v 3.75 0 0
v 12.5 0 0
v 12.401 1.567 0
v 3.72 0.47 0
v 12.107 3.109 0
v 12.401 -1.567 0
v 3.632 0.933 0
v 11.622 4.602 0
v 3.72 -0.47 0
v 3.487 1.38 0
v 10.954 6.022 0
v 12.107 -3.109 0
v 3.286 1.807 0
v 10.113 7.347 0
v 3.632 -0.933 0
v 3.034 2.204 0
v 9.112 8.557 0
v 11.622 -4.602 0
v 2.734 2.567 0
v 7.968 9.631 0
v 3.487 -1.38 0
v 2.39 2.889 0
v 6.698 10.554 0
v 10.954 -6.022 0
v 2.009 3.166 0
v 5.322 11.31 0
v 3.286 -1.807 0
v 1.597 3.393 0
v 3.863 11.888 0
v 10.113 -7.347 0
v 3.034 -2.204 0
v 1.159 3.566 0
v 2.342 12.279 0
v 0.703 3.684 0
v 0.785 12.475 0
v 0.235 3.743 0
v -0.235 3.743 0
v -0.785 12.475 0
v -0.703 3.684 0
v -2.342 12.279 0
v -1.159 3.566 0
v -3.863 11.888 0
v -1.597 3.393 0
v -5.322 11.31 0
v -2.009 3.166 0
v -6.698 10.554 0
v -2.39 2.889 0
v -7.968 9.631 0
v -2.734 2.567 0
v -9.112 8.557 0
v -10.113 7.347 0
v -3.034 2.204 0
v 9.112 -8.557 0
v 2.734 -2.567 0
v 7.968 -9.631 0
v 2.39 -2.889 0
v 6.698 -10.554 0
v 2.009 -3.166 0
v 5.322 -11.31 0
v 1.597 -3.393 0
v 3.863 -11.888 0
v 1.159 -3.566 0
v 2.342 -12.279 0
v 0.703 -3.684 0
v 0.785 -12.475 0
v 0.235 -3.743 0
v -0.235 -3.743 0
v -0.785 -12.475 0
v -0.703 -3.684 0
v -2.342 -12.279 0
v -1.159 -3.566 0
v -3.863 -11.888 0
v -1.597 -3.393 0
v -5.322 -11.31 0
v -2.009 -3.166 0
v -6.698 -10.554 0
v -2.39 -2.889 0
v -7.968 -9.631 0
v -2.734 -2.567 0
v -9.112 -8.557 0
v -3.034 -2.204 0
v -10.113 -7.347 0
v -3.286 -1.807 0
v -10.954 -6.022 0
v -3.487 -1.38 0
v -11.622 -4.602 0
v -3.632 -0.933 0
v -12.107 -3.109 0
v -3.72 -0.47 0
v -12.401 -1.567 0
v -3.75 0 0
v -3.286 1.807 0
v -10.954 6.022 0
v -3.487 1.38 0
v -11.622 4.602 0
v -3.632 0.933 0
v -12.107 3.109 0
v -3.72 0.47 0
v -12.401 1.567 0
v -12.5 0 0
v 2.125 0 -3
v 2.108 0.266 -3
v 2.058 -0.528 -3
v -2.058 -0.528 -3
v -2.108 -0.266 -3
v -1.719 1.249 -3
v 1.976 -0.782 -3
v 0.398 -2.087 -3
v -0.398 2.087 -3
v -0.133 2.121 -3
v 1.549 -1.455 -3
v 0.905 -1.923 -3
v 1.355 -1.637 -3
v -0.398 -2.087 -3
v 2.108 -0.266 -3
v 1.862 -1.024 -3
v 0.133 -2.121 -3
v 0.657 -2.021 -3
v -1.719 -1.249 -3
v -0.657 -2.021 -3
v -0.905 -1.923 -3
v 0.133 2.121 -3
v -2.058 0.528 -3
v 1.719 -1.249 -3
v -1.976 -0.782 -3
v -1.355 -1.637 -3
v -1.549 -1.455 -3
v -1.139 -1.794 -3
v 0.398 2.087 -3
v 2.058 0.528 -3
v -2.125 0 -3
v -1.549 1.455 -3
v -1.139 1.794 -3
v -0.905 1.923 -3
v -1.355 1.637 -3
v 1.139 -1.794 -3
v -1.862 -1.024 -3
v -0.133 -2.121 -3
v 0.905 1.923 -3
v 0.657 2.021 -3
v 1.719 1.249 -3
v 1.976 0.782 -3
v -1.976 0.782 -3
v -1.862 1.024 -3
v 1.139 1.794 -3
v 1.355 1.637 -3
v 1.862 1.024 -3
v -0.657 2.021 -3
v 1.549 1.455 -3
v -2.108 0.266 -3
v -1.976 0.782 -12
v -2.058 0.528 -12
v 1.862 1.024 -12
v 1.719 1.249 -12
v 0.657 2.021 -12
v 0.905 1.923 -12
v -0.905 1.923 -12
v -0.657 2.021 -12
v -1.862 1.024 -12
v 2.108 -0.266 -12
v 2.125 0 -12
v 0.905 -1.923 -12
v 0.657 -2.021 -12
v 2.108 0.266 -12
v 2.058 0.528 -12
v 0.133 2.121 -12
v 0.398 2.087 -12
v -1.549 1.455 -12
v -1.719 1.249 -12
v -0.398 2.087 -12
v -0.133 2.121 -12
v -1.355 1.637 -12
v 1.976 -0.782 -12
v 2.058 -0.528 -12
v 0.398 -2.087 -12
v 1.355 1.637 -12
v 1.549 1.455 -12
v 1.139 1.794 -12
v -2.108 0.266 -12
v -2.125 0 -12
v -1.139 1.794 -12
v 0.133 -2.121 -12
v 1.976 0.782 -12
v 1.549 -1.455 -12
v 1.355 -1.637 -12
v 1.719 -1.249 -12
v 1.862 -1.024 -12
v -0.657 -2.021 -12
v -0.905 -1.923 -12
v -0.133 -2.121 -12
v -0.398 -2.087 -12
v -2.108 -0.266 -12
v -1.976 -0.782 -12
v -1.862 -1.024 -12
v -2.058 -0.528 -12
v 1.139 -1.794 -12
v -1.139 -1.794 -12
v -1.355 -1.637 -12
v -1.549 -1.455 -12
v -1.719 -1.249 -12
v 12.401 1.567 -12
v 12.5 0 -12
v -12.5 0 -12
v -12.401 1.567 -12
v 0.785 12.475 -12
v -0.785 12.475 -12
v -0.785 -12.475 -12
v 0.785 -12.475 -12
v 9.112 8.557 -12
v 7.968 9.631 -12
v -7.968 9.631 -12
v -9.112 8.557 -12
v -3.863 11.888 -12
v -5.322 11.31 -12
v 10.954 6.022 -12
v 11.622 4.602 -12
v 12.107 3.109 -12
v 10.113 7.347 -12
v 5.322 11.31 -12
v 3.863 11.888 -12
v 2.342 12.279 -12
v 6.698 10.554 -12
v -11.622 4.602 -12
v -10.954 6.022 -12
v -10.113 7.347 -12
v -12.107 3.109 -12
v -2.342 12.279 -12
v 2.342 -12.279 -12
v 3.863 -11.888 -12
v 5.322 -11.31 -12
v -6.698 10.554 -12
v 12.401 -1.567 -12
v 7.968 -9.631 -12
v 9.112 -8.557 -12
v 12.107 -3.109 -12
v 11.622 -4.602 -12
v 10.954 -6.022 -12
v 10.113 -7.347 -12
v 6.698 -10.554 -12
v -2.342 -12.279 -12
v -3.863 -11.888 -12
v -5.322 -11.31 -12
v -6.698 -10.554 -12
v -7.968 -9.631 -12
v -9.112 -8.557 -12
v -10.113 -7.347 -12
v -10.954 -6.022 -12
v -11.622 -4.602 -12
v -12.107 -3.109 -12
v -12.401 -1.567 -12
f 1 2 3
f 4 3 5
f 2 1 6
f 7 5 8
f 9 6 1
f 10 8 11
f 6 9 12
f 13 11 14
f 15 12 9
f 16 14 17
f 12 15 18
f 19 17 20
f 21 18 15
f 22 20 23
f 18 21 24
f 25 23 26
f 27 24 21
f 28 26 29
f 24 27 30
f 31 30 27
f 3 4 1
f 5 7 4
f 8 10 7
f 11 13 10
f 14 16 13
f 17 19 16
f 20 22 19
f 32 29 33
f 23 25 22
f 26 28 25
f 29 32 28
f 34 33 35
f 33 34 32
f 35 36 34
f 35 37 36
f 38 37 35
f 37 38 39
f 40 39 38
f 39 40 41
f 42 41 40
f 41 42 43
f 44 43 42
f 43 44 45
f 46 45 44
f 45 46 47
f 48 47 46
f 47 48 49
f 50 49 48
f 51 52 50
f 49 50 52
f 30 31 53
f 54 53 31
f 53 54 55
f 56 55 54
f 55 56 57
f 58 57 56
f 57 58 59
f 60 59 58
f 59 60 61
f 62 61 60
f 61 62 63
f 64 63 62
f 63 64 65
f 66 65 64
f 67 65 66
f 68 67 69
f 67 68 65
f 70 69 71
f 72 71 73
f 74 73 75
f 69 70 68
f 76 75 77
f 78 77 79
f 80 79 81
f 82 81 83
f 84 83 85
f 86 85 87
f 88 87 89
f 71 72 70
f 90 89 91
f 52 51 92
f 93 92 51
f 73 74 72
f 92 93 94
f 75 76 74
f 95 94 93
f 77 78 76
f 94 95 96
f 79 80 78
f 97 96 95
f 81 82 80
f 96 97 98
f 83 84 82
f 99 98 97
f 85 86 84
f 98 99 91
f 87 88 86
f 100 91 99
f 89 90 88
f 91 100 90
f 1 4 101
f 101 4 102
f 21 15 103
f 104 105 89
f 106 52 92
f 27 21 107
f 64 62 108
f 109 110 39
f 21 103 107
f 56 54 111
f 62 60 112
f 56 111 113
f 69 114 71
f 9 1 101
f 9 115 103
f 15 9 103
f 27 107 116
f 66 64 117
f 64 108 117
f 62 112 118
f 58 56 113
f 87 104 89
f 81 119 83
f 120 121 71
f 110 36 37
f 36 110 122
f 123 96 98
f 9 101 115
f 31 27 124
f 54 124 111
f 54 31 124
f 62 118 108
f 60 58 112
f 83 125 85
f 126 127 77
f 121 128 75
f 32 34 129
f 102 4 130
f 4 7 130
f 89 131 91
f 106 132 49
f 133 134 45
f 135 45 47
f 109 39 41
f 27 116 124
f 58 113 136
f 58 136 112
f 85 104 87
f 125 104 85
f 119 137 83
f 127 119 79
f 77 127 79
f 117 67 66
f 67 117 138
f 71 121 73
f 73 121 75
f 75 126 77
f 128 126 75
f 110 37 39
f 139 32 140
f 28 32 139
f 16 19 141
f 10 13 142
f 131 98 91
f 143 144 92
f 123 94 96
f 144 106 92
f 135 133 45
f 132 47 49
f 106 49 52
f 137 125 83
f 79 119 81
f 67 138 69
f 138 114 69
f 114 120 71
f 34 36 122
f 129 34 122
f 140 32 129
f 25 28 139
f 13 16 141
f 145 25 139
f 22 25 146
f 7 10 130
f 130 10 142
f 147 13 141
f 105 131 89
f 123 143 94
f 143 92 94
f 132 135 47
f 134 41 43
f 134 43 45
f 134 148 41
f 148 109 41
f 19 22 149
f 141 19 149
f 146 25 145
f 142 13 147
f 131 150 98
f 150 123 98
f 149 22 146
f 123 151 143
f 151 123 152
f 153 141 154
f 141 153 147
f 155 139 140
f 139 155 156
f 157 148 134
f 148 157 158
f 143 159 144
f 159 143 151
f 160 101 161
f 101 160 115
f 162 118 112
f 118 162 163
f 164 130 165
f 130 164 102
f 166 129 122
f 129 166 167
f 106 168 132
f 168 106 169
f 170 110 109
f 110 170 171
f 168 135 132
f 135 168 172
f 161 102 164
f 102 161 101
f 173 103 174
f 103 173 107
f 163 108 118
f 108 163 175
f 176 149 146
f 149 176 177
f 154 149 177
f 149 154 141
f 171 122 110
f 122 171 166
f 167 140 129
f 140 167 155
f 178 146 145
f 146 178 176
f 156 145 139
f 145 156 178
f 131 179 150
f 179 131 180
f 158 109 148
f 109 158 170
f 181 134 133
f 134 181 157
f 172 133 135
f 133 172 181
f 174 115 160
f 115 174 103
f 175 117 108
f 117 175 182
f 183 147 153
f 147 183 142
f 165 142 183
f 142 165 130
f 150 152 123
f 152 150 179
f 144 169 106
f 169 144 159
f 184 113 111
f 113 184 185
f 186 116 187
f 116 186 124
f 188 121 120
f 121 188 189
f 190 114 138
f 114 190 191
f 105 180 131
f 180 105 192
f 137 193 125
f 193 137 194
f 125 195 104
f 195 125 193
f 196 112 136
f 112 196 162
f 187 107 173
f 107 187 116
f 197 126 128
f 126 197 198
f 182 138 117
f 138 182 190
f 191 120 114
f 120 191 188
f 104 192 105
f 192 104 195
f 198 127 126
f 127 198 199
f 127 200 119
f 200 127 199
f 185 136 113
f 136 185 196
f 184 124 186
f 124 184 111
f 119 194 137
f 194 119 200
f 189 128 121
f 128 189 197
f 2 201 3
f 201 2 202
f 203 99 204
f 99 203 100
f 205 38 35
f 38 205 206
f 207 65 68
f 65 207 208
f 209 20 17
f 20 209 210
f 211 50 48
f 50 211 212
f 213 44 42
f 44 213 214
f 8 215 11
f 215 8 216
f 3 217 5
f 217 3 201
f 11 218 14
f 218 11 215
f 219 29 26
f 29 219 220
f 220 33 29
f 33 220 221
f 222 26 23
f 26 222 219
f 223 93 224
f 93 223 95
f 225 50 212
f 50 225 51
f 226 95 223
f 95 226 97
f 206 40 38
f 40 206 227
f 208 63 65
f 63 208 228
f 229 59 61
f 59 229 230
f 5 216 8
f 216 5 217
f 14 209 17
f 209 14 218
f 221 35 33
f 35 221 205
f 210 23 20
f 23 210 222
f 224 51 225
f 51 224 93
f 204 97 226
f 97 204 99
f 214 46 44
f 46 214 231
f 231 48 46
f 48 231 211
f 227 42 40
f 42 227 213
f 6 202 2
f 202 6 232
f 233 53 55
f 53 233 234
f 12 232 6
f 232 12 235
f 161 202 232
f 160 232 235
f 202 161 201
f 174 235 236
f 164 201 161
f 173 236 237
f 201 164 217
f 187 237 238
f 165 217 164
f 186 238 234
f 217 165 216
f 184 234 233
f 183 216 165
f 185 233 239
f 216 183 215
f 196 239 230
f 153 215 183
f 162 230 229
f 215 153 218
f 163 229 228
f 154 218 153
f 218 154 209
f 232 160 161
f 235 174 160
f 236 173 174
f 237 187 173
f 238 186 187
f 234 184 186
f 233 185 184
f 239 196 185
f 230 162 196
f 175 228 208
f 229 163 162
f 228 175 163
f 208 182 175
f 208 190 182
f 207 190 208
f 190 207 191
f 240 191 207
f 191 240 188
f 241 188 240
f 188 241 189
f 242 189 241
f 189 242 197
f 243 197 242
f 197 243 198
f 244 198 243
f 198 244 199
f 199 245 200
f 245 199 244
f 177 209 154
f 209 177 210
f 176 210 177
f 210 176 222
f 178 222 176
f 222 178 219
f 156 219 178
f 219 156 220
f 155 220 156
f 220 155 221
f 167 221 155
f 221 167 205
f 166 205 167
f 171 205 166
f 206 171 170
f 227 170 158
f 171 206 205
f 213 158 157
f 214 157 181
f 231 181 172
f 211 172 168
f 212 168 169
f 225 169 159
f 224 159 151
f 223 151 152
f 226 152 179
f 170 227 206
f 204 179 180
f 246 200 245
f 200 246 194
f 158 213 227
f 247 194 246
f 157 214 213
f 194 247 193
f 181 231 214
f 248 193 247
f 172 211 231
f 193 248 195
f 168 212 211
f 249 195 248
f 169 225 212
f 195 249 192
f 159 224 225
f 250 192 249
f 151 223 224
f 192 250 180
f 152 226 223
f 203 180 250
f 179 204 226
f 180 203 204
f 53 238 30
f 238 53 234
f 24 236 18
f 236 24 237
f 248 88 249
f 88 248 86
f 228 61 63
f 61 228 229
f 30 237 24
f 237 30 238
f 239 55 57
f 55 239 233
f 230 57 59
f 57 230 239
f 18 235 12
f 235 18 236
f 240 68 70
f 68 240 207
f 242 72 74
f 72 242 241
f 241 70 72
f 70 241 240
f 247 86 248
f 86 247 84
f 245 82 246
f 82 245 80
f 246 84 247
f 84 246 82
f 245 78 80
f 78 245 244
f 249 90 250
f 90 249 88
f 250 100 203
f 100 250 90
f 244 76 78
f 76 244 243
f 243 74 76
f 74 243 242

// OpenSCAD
$fn = 50;


difference() {
	union() {
		translate(v = [0, 0, -12.0000000000]) {
			cylinder(h = 12, r = 12.5000000000);
		}
	}
	union() {
		translate(v = [0, 0, 0]) {
			rotate(a = [0, 0, 0]) {
				difference() {
					union() {
						translate(v = [0, 0, -15.0000000000]) {
							cylinder(h = 15, r = 2.0000000000);
						}
						translate(v = [0, 0, -3]) {
							cylinder(h = 3, r1 = 2.1250000000, r2 = 3.7500000000);
						}
						translate(v = [0, 0, -15.0000000000]) {
							cylinder(h = 15, r = 2.1250000000);
						}
						translate(v = [0, 0, -15.0000000000]) {
							cylinder(h = 15, r = 2.0000000000);
						}
					}
					union();
				}
			}
		}
	}
}
